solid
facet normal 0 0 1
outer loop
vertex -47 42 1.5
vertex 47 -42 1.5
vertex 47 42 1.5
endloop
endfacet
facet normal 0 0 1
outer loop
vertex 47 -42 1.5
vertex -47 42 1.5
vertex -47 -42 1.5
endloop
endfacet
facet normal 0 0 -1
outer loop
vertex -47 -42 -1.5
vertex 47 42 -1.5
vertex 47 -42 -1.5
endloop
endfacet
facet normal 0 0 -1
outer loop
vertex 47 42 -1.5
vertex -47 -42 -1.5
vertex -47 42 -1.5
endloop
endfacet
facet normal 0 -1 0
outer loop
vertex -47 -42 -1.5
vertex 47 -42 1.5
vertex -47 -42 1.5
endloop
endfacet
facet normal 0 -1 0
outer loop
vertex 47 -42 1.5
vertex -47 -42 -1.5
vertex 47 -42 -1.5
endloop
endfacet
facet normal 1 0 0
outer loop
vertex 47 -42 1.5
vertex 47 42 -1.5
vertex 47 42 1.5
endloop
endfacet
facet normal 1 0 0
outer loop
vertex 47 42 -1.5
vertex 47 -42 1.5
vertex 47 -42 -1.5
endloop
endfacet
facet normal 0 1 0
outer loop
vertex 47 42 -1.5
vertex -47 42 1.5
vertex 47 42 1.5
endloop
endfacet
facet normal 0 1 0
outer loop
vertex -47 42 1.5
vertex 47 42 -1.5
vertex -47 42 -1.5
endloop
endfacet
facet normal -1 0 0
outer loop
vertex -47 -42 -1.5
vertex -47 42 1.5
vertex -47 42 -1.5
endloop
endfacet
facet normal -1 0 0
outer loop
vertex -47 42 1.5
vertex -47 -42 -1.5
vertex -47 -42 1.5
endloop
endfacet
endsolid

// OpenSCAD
//Quartz Window model
module window(x, y, t){
    //difference(){
       // difference(){
            //difference(){
                //difference(){
                        cube([x-16,y-16,t],center=true);
                    
//screws holes for quartz
 //1
 //translate([x/2-,0,0])
 //cylinder(r=s_d/2,h=t+1, center=true);
 //}
//2
  //translate([-(x/2-5),0,0])
 //cylinder(r=s_d/2,h=t+1, center=true);
//}
//3
//translate([0,(y/2-5),0])
 //cylinder(r=s_d/2,h=t+1, center=true);
//
//4
//translate([0,-(y/2-5),0])
 //cylinder(r=s_d/2,h=t+1, center=true);

//}
//}
}
window(110,100,3);
